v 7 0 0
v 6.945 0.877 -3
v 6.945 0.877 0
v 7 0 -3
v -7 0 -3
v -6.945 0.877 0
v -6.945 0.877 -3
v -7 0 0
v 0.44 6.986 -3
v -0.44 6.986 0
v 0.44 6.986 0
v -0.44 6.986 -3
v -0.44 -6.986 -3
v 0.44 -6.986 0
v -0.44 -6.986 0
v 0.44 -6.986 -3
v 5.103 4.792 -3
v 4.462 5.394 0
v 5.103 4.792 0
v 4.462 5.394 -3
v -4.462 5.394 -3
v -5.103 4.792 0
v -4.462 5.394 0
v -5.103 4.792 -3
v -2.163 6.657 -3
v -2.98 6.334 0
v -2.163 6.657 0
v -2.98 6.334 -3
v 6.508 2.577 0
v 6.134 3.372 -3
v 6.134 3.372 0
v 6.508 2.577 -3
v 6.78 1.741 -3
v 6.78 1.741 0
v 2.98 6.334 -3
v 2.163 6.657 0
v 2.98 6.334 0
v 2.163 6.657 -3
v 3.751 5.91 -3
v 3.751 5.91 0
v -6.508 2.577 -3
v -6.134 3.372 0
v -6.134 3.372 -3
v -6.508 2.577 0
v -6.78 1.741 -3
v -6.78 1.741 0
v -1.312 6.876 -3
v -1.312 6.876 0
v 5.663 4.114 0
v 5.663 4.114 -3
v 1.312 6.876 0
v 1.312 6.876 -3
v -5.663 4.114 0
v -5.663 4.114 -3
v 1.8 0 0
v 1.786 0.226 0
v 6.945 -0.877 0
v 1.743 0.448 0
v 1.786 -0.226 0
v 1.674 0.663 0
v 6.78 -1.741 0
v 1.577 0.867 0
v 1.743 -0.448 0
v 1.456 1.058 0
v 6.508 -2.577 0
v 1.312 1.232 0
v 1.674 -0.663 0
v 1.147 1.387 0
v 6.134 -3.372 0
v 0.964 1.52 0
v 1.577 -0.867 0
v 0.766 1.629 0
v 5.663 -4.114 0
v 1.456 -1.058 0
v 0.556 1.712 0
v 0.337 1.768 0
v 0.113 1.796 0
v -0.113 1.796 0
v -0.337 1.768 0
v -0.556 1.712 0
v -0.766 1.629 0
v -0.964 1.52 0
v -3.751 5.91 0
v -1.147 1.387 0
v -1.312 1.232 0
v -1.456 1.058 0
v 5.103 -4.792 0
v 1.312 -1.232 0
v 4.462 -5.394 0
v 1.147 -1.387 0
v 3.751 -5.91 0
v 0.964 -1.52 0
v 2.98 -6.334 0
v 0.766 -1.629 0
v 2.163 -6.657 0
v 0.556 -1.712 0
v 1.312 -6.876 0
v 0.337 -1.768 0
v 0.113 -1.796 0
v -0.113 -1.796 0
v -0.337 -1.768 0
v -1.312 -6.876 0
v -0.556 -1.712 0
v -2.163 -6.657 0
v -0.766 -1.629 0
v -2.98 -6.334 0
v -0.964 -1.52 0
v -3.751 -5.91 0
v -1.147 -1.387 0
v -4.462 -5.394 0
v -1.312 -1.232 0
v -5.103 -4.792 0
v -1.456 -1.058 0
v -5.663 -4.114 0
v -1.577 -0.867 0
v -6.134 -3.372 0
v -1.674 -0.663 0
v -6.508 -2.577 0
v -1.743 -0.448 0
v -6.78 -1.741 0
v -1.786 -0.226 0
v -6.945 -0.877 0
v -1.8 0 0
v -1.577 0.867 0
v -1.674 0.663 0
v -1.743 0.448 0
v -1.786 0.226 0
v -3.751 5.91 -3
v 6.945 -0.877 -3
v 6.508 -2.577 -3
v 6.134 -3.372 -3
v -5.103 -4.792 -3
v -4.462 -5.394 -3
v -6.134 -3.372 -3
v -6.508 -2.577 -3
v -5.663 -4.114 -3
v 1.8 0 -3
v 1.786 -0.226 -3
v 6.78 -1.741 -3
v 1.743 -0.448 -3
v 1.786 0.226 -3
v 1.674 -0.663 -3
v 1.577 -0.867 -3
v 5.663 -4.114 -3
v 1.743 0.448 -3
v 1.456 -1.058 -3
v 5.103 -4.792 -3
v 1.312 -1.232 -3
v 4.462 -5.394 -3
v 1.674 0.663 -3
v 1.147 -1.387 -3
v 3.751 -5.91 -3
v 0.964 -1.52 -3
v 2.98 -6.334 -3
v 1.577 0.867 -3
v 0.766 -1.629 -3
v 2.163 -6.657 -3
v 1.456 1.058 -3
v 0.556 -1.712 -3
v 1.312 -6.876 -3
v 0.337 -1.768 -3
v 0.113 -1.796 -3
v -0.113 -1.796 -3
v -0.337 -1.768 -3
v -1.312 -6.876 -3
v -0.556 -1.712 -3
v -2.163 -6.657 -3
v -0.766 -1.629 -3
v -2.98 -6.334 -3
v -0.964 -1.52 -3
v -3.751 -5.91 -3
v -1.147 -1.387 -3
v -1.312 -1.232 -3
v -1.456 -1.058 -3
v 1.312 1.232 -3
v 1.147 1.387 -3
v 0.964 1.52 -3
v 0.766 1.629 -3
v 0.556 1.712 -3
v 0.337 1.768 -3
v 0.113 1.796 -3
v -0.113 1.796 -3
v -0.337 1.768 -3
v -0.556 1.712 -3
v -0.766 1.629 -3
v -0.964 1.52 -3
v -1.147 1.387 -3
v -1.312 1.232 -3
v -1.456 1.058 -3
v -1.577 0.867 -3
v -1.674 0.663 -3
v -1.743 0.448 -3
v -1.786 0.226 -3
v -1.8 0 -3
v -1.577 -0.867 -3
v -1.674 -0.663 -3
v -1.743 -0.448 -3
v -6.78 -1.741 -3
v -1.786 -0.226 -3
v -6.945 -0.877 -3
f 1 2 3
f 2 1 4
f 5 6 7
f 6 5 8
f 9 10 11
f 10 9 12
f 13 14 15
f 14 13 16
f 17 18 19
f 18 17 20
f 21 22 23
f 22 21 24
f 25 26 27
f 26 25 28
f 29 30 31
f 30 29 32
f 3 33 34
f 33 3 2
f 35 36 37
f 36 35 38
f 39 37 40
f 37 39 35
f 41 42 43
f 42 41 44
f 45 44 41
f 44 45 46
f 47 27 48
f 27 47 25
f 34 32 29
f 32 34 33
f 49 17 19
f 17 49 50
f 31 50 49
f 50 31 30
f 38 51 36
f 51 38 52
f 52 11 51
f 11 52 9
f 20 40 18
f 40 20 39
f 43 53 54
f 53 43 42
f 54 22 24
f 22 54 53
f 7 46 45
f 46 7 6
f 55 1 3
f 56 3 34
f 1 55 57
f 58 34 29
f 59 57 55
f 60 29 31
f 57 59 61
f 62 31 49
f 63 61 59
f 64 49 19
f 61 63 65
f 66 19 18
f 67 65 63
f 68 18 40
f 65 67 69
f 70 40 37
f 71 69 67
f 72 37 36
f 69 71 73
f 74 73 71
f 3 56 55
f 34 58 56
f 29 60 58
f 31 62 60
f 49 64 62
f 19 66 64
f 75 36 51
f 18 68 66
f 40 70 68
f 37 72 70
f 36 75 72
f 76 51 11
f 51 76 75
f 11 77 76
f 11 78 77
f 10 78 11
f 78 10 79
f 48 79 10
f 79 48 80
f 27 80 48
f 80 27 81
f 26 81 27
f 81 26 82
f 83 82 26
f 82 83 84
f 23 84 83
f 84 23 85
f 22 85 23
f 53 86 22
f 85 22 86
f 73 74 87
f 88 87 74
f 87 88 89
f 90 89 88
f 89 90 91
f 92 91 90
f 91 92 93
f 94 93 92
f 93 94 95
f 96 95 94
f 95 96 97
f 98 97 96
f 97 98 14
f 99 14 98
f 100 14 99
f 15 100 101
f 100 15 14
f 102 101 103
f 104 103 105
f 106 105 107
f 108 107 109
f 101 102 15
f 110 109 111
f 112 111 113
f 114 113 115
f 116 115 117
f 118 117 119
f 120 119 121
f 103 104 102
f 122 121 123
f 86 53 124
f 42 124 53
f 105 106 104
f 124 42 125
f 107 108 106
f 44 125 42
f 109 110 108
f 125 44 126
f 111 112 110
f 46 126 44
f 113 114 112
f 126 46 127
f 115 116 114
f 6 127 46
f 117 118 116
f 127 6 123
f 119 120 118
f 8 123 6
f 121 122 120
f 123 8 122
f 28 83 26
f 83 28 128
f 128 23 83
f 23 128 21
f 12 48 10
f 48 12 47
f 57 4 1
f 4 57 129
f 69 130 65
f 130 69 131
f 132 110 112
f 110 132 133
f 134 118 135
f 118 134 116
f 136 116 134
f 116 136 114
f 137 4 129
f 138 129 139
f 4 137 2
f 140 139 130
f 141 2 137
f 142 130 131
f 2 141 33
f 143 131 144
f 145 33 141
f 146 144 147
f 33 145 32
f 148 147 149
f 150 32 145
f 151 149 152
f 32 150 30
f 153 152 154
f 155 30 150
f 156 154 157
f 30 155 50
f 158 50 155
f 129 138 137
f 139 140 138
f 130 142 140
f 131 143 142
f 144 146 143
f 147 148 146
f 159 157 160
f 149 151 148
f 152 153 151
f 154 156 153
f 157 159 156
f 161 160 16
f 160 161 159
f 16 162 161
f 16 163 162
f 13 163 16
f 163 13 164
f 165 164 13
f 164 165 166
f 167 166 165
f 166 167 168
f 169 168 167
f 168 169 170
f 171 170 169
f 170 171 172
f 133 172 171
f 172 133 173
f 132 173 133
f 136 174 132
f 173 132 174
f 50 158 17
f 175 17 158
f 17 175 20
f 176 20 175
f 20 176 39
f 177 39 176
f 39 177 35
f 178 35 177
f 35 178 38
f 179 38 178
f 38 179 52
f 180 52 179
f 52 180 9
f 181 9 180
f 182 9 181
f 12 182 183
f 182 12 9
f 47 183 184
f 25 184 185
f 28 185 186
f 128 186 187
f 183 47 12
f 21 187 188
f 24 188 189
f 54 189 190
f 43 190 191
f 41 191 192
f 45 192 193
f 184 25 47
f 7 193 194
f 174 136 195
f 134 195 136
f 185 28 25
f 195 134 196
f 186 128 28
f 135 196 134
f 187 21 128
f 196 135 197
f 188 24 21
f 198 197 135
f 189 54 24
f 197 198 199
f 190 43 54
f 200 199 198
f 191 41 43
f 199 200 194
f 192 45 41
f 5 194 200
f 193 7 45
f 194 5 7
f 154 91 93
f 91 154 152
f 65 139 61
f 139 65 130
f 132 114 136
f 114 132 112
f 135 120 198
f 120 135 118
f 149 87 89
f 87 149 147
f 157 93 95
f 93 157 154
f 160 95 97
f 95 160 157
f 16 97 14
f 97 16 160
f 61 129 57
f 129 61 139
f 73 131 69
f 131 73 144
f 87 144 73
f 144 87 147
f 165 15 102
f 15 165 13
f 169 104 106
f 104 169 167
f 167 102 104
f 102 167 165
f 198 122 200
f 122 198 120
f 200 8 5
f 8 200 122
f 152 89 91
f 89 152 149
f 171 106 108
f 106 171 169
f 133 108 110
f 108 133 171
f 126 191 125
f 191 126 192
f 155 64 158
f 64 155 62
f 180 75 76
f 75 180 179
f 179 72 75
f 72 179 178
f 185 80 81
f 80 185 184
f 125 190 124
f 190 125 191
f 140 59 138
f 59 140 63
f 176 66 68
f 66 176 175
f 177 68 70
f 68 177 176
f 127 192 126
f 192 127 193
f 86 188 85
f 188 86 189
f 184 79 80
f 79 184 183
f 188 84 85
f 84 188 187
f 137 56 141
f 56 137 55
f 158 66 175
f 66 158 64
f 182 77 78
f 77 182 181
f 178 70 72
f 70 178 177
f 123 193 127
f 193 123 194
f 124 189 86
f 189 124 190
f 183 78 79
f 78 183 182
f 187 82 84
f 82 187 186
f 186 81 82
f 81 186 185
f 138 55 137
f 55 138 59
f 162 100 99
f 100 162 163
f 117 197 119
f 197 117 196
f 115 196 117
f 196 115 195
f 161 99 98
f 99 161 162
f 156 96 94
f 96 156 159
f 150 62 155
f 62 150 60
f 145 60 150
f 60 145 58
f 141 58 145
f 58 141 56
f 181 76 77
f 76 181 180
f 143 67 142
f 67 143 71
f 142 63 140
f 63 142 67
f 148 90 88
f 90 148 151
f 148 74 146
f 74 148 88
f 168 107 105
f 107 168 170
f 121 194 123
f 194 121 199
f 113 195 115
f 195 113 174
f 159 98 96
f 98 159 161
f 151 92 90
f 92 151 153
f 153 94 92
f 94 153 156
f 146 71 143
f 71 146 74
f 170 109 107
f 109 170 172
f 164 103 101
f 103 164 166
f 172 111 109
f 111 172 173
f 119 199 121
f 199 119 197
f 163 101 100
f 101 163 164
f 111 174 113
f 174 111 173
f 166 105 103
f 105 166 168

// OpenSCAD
$fn = 50;


difference() {
	union() {
		translate(v = [0, 0, -3.0000000000]) {
			cylinder(h = 3, r = 7.0000000000);
		}
		cylinder(h = 0, r = 10.0000000000);
	}
	union() {
		#translate(v = [0, 0, -3]) {
			cylinder(h = 3, r = 1.8000000000);
		}
	}
}
